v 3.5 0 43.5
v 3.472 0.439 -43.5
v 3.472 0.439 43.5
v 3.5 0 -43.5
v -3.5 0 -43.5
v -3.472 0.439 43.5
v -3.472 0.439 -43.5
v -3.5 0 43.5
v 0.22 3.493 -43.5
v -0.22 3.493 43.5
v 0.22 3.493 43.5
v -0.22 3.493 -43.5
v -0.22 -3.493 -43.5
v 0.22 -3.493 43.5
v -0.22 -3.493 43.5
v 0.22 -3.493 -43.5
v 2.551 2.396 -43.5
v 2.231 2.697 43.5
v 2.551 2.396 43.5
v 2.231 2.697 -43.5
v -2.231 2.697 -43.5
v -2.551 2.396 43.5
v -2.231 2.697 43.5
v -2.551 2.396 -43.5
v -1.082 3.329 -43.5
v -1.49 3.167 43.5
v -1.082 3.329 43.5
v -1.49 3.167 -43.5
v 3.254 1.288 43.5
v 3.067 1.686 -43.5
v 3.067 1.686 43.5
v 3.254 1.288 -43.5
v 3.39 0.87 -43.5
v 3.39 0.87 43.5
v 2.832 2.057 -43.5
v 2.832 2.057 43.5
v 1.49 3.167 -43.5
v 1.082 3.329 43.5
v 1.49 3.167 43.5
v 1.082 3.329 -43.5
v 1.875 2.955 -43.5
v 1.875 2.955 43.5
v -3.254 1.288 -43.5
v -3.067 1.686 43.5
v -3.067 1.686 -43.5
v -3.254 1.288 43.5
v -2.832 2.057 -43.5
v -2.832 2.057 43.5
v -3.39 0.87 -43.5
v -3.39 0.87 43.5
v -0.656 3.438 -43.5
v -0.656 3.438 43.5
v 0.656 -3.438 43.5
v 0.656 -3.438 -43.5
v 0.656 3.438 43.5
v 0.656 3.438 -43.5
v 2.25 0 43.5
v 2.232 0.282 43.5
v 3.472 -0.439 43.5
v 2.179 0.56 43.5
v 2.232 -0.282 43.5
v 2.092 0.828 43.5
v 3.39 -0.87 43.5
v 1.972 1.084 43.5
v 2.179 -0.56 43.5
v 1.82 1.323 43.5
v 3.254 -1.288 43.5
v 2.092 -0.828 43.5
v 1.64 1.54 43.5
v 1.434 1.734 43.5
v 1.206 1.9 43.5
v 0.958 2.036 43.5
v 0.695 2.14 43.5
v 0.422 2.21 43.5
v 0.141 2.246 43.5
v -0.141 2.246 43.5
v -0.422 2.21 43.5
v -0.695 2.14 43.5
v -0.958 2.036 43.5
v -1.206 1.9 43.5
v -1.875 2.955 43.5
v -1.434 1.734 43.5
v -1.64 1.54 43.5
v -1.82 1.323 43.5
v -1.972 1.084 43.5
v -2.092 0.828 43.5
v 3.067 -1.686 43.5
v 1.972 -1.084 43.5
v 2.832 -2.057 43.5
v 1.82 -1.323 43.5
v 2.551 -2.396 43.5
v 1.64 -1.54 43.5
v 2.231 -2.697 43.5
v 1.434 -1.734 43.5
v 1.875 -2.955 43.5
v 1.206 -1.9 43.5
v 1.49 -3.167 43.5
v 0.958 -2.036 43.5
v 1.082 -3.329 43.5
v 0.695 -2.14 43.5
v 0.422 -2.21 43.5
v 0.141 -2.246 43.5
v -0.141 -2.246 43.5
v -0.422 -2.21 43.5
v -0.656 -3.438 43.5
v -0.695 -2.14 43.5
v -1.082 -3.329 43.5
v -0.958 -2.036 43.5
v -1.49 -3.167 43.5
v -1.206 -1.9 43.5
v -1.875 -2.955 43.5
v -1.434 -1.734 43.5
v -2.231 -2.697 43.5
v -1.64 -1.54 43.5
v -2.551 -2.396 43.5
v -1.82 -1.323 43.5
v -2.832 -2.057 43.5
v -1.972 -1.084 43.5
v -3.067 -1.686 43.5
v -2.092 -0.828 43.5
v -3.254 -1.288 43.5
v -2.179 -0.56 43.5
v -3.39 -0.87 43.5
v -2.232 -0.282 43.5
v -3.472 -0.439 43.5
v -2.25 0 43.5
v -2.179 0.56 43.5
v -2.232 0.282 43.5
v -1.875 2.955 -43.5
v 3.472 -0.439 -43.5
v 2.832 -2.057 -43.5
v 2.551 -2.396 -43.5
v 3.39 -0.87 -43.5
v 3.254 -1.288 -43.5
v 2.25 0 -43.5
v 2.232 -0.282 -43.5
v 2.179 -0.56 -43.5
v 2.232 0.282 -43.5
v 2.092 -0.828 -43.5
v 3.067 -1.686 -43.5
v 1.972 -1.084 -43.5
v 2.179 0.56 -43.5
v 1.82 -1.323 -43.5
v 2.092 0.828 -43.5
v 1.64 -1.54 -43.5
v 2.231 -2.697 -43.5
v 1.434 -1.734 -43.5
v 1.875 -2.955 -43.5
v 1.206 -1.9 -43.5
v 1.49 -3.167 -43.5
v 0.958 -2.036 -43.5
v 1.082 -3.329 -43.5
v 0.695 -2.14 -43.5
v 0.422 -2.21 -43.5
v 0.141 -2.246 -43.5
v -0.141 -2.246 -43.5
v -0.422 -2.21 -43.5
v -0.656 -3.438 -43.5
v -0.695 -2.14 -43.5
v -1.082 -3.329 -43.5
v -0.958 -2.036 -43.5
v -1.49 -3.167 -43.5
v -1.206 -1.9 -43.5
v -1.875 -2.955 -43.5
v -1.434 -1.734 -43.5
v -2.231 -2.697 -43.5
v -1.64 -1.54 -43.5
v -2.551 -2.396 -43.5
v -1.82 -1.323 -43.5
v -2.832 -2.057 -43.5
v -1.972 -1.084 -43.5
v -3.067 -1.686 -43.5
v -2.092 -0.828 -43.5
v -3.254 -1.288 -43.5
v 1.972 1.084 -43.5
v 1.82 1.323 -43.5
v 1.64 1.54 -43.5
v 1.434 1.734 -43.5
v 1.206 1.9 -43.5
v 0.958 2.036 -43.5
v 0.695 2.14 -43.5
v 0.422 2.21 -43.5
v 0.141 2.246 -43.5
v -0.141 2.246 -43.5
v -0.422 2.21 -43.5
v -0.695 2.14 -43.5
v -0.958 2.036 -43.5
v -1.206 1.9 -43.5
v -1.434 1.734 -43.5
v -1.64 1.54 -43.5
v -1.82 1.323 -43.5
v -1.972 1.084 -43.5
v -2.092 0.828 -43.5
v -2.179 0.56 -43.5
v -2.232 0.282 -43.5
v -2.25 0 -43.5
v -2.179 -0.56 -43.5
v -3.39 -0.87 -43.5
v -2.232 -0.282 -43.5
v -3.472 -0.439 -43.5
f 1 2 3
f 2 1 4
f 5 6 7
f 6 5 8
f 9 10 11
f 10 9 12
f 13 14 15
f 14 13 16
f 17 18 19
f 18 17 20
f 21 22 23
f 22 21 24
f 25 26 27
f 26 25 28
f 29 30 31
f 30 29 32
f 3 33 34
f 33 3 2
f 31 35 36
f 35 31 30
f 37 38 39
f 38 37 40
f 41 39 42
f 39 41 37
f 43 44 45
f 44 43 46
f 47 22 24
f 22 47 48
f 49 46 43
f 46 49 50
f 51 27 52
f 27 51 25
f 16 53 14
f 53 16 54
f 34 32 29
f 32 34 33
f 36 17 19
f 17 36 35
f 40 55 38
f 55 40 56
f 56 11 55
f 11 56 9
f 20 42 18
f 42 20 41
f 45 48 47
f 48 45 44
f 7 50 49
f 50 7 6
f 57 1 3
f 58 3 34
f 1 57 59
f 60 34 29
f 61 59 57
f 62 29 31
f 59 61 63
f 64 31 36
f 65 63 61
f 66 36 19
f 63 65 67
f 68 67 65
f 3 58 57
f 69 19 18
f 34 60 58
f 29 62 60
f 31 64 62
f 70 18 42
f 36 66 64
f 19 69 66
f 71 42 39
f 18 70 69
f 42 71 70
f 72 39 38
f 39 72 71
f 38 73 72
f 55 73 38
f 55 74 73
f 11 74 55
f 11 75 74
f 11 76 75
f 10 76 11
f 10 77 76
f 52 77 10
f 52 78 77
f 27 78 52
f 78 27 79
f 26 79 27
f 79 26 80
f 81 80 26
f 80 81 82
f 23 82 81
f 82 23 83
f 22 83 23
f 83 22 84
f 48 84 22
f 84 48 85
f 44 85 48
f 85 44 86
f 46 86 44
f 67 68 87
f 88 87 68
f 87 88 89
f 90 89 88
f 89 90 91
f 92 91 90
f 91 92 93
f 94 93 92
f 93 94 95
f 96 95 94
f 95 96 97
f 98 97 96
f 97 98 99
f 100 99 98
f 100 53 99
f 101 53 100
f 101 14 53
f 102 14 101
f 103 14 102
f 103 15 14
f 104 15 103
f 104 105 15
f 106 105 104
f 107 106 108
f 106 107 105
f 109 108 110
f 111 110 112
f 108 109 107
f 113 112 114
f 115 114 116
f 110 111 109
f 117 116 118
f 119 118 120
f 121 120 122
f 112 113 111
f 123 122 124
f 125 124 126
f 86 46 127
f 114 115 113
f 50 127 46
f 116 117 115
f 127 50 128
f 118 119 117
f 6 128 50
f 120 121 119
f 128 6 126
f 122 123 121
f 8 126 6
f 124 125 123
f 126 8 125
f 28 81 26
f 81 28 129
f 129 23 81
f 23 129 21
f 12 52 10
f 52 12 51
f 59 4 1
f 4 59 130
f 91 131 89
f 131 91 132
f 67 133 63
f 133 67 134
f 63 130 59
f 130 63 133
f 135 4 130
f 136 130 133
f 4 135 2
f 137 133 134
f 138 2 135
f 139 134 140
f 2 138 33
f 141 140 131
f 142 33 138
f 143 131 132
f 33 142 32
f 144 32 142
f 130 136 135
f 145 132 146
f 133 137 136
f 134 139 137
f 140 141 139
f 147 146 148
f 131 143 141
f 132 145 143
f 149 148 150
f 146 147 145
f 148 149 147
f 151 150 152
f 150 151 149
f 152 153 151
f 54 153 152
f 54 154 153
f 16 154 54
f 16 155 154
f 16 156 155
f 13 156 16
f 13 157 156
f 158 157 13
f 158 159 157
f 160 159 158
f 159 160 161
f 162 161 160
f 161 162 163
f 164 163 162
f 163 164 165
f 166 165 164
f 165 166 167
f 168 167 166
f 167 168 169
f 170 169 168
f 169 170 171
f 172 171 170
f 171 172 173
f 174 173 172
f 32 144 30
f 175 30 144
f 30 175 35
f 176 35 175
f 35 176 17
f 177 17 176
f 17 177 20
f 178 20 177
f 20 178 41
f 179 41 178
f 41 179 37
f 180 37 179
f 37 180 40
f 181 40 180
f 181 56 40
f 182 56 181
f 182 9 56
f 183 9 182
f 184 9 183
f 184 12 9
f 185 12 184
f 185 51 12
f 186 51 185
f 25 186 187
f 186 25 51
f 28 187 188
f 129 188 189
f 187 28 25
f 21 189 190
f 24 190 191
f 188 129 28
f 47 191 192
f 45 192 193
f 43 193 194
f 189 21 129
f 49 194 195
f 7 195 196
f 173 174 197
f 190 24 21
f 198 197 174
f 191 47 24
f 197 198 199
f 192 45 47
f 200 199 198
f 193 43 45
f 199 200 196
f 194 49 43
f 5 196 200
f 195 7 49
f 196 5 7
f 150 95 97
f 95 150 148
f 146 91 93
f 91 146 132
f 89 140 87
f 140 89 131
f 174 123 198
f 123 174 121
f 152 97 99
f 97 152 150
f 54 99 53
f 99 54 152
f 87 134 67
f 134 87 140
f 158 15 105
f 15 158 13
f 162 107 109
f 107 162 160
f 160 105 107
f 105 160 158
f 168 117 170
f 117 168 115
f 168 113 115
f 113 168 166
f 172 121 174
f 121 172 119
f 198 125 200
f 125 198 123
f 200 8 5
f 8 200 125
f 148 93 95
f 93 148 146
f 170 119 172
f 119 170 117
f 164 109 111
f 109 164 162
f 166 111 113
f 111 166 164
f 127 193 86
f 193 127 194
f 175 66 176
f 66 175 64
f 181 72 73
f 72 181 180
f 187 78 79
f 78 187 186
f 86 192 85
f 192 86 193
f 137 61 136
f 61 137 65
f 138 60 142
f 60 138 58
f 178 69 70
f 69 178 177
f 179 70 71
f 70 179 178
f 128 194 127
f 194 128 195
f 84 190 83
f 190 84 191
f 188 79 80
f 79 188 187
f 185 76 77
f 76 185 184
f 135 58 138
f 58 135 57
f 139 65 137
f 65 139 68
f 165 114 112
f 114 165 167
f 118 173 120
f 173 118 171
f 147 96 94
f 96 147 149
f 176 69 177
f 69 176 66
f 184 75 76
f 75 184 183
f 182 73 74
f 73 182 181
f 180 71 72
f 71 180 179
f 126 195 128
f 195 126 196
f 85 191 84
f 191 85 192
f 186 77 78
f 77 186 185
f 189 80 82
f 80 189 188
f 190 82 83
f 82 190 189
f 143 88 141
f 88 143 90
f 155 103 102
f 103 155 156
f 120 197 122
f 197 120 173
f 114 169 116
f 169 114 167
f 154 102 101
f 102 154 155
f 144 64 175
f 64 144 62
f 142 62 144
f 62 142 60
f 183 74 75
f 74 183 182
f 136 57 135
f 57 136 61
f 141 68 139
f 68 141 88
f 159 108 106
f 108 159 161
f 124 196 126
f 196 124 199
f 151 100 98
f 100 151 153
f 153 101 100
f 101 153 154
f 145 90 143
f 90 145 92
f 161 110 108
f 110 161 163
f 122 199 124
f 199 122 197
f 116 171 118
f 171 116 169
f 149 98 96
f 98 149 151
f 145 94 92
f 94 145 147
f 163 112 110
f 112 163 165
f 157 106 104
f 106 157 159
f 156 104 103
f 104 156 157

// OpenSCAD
$fn = 50;


difference() {
	union() {
		translate(v = [0, 0, -43.5000000000]) {
			cylinder(h = 87, r = 3.5000000000);
		}
	}
	union() {
		translate(v = [0, 0, -100.0000000000]) {
			cylinder(h = 200, r = 2.2500000000);
		}
	}
}
